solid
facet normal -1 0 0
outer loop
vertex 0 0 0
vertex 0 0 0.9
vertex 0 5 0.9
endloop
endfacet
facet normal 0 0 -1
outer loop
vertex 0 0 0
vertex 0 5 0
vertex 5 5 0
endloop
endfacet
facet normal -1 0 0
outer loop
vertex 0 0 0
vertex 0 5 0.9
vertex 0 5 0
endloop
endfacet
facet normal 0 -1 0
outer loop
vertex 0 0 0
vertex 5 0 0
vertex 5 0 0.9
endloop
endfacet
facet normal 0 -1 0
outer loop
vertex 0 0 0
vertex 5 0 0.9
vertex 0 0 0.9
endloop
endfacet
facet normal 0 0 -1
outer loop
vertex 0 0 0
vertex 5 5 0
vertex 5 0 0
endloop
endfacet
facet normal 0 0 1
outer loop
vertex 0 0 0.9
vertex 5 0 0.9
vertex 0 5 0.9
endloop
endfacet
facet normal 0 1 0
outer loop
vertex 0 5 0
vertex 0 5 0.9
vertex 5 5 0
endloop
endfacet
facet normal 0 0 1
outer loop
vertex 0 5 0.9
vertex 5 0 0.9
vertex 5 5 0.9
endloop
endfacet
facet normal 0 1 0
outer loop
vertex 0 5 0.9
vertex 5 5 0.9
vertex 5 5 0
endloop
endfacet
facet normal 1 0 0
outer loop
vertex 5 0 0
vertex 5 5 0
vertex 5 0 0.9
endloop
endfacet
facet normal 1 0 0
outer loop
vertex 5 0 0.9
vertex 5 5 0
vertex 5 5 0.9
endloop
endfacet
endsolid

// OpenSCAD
/* Warning, this is a very basic generator with a lot of approximation 
input data : [VQFN, 9PX, 5x5x0.9mm, 28, , D, C04-00426D]
generated by com.zoubworld.electronics.cad.model3d.Basic
Date : Sun Feb 15 10:50:48 CET 2026
*/

//body
color("black")
translate([0,0,0])
cube([5.0,5.0,0.9], center=false);
